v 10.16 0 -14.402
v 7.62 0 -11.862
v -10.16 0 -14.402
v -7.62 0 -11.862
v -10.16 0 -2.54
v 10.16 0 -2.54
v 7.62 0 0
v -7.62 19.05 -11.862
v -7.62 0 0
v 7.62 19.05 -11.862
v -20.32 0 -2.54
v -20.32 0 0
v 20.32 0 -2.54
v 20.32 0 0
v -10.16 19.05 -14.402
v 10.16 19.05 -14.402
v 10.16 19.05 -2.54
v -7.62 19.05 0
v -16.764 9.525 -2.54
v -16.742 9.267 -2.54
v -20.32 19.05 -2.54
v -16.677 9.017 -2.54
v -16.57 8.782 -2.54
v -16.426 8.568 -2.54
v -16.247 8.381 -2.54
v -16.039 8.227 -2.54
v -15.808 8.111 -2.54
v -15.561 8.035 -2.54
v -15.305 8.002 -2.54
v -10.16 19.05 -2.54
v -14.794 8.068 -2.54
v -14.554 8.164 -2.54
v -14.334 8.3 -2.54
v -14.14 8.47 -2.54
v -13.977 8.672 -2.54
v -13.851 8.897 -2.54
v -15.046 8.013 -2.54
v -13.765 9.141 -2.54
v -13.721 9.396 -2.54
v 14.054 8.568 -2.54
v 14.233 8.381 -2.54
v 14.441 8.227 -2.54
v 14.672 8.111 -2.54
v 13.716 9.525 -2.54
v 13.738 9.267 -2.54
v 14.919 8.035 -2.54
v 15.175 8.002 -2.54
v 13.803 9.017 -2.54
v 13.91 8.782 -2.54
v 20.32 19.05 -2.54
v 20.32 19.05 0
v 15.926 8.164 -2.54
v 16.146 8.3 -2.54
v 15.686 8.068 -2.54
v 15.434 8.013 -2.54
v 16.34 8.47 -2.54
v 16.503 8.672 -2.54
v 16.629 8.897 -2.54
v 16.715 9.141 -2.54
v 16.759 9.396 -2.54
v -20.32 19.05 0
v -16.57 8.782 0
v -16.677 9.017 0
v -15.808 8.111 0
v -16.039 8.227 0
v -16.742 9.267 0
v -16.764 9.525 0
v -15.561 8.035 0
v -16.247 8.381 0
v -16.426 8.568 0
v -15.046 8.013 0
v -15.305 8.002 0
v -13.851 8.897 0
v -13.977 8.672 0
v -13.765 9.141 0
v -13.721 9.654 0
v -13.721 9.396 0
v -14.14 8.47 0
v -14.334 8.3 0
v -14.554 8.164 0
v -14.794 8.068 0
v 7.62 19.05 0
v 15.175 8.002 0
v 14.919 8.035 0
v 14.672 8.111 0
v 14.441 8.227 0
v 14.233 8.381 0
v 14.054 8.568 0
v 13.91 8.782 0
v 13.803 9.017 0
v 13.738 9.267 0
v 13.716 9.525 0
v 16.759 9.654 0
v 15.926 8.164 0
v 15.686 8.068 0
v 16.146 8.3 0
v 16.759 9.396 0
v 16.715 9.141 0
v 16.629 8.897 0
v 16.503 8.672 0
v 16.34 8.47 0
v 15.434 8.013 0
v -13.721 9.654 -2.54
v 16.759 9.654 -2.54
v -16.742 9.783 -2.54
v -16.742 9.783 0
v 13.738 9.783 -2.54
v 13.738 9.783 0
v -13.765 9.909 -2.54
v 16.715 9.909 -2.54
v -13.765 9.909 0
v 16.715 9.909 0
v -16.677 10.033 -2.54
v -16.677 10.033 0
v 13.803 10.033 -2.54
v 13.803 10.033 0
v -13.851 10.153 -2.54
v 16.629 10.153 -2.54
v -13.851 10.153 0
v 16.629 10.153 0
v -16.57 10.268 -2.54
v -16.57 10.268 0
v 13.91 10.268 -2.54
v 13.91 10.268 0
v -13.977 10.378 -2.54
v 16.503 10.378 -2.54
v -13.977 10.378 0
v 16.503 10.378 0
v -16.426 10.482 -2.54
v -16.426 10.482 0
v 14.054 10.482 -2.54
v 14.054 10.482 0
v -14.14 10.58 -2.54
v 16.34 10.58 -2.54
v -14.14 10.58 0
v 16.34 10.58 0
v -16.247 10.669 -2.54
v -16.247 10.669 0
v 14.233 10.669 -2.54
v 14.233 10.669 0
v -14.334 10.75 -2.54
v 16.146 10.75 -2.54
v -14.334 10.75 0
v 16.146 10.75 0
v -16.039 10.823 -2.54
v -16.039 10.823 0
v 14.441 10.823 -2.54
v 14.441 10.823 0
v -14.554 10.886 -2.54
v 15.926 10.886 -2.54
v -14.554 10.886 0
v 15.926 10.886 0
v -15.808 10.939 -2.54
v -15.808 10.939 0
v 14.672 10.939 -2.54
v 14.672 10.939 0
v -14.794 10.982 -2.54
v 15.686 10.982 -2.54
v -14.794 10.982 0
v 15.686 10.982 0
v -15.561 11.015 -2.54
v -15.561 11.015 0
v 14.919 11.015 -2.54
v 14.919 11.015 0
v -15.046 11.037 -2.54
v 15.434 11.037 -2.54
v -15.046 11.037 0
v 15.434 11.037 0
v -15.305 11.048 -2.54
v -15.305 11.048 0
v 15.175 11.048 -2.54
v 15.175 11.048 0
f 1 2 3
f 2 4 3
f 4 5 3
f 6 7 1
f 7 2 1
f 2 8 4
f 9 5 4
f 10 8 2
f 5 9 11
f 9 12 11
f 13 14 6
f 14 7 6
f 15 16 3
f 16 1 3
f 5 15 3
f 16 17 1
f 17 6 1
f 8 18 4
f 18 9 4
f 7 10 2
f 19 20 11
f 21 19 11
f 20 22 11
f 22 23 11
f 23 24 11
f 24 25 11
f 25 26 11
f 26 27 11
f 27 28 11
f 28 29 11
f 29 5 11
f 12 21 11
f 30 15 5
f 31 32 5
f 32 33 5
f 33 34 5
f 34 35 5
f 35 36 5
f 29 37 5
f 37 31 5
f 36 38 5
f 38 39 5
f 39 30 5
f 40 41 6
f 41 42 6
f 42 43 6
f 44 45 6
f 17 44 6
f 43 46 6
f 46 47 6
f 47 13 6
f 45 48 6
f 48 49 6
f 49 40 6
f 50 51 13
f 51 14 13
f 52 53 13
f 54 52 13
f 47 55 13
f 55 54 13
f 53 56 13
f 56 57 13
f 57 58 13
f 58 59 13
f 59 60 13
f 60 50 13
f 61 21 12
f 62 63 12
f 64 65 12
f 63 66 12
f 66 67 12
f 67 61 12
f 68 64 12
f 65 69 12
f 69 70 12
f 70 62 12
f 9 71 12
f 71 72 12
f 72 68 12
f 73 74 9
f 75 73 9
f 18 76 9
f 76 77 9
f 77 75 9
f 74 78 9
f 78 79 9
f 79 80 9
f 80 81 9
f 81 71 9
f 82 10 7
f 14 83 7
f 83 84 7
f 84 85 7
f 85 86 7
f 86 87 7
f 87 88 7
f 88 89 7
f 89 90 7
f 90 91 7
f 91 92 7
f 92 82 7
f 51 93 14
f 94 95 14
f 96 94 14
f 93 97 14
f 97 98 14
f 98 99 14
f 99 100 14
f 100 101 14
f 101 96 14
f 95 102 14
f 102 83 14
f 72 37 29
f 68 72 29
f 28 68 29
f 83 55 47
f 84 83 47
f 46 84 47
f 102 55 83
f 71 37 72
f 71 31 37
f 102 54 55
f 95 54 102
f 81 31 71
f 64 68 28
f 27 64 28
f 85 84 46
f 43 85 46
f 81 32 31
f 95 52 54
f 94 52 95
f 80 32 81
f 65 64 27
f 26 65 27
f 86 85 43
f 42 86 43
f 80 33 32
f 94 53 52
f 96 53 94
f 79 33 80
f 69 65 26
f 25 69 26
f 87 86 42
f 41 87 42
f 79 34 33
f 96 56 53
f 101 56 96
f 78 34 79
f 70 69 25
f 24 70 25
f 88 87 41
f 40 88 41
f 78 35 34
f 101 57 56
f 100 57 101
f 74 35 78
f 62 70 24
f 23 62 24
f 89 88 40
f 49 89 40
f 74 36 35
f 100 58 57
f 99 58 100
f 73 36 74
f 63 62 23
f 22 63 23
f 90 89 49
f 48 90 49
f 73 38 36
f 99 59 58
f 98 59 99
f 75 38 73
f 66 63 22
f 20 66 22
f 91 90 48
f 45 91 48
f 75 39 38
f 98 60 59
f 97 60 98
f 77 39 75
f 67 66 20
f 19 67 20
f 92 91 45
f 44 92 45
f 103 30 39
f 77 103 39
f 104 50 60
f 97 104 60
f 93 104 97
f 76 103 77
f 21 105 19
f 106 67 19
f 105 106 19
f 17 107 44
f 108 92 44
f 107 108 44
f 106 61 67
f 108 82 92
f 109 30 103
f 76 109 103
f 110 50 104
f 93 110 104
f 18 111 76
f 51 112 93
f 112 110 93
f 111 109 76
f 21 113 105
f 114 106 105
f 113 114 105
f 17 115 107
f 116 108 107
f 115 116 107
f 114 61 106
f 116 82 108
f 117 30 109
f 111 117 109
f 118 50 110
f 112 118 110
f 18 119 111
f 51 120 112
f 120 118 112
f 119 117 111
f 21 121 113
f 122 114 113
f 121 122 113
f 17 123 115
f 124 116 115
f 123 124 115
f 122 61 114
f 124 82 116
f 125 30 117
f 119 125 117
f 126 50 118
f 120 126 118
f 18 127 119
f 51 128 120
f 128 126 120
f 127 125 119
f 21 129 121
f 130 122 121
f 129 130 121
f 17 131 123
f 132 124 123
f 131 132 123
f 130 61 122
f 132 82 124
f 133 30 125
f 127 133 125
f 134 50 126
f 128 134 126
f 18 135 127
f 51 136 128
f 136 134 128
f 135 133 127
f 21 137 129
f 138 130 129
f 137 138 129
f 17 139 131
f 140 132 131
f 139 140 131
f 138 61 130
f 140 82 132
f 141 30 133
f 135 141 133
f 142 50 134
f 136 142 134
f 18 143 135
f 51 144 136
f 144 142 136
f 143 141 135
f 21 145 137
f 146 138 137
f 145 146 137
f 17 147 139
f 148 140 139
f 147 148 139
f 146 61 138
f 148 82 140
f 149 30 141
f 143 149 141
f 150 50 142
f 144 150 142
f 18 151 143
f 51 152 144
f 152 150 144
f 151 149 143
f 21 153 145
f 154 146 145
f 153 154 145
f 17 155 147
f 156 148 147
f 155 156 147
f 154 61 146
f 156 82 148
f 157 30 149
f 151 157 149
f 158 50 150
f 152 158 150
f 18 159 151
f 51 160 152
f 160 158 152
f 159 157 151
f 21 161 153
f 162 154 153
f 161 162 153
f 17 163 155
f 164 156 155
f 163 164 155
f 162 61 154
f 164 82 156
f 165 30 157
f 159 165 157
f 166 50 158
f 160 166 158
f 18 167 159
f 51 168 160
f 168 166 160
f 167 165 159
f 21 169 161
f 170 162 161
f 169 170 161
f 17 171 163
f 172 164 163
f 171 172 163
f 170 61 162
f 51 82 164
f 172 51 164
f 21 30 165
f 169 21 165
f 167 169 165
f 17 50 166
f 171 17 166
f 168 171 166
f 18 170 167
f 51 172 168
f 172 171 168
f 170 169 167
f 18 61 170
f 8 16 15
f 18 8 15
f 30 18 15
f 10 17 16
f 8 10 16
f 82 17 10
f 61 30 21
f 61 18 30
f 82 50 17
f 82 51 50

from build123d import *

# Parameters (mm, degrees)
BOSS_EXTRUDE1_DEPTH = 19.05
SKETCH2_R           = 1.524
CUT_EXTRUDE1_DEPTH  = 3.54


with BuildPart() as part:
    # Sketch1 → Boss-Extrude1 (new body)
    with BuildSketch(Plane(origin=(0, 0, 0), x_dir=(1, 0, 0), z_dir=(0, 1, 0))):
        Polygon((7.62, 0), (20.32, 0), (20.32, 2.54), (10.16, 2.54), (10.16, 14.4018), (-10.16, 14.4018), (-10.16, 2.54), (-20.32, 2.54), (-20.32, 0), (-7.62, 0), (-7.62, 11.8618), (7.62, 11.8618), align=None)
    extrude(amount=BOSS_EXTRUDE1_DEPTH)

    # Sketch2 → Cut-Extrude1 (cut, through all)
    with BuildSketch(Plane(origin=(0, 0, -2.54), x_dir=(-1, 0, 0), z_dir=(0, 0, -1))):
        with Locations((15.24, 9.525)):
            Circle(SKETCH2_R)
        with Locations((-15.24, 9.525)):
            Circle(SKETCH2_R)
    extrude(amount=-CUT_EXTRUDE1_DEPTH, mode=Mode.SUBTRACT)


solid = part.part
